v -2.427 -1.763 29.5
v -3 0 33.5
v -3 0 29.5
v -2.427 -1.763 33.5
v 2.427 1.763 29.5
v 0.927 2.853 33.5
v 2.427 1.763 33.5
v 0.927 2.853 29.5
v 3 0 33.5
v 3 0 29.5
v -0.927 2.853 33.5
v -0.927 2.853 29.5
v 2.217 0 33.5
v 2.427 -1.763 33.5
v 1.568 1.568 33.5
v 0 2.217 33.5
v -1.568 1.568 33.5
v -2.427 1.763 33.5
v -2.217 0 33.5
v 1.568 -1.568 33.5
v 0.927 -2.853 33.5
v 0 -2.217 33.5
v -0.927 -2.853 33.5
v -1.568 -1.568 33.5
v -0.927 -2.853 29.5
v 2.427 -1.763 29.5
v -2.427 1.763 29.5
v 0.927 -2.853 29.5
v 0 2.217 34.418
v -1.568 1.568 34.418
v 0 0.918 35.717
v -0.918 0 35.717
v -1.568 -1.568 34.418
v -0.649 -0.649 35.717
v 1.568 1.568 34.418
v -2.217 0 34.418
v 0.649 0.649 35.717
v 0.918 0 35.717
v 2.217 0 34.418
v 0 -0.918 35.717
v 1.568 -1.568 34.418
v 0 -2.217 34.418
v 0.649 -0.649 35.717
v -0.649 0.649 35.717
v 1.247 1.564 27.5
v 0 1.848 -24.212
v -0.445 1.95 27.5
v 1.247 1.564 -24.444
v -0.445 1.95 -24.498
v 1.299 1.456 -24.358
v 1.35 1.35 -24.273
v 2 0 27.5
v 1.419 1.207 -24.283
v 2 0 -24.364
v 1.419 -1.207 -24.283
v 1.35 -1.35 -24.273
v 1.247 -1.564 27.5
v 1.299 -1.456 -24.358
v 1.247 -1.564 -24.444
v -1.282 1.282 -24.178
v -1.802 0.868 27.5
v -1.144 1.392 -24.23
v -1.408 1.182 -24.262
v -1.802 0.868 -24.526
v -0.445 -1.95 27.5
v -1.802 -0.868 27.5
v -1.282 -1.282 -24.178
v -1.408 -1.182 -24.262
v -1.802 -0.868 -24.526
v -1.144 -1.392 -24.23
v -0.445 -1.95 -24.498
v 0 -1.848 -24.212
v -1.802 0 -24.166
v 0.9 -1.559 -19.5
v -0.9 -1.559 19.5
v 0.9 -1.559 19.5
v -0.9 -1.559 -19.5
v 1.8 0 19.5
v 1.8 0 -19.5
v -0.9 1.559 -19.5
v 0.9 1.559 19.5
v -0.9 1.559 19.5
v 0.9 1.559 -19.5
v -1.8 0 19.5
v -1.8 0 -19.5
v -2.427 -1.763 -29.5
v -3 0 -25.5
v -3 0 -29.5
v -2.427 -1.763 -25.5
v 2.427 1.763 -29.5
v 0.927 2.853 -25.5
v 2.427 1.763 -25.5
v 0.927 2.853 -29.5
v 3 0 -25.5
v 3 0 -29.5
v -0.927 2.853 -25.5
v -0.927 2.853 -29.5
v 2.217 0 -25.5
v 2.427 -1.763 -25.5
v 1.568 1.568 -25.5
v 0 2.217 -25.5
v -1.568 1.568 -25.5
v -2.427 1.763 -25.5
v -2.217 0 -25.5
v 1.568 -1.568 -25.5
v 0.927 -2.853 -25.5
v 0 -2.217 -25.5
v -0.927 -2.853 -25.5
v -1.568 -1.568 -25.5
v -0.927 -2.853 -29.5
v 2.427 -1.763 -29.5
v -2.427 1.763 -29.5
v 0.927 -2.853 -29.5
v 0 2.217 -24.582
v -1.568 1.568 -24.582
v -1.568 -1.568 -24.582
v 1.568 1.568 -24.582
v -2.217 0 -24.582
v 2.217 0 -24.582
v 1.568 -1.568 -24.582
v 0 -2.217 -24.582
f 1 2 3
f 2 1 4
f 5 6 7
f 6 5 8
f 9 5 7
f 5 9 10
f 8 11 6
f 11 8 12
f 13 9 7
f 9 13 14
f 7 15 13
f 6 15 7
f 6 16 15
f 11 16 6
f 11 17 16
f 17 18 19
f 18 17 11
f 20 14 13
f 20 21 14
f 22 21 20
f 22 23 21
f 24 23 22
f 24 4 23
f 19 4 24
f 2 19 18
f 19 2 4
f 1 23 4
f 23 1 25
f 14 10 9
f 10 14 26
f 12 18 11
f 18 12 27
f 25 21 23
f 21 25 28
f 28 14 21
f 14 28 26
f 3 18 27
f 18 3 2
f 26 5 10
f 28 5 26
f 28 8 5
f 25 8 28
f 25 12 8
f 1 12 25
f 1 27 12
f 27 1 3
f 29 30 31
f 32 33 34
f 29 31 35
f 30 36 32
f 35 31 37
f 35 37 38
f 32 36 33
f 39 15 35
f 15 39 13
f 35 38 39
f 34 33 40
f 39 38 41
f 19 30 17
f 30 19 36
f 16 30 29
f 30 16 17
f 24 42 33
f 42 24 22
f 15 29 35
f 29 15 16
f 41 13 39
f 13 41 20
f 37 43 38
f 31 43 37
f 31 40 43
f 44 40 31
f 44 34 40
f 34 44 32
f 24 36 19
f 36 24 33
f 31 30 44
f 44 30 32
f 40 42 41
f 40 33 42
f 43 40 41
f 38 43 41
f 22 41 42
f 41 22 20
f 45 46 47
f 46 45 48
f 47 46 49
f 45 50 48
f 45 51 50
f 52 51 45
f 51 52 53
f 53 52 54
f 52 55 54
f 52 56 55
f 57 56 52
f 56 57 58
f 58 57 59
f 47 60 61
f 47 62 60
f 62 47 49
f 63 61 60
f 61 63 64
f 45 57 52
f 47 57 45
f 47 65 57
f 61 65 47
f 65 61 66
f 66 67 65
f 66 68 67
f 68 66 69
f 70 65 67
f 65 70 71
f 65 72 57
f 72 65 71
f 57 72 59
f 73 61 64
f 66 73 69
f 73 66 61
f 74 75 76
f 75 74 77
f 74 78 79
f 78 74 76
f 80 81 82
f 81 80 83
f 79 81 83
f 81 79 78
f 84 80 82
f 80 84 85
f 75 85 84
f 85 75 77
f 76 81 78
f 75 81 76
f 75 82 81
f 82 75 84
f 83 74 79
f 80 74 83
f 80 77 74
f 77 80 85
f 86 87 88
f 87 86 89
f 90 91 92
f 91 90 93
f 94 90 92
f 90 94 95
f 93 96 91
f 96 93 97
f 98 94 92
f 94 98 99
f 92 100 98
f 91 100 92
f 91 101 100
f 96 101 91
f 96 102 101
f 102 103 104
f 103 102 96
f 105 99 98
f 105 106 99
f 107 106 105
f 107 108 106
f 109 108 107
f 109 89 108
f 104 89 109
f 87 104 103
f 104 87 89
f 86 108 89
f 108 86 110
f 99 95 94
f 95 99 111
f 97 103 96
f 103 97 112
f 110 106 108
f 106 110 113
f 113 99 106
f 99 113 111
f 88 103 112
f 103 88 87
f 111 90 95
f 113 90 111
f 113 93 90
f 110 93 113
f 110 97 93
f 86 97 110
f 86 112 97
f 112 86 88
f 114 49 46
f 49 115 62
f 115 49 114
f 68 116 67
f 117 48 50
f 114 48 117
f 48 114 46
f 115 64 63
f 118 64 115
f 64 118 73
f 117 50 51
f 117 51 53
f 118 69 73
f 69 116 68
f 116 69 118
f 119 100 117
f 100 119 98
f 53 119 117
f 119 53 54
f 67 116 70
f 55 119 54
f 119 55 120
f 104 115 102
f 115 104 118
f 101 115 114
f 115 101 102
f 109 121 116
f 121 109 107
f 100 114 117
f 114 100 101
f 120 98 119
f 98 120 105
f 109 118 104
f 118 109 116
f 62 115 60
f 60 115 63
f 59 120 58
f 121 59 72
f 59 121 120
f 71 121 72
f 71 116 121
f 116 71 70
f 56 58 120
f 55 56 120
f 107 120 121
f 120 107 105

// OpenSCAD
// Parameters for the rod
rod_length = 55; // Adjusted length of the rod to match the original model
rod_radius = 2;  // Radius of the rod
taper_radius = 1.8; // Reduced taper radius to make it less pronounced
taper_length = 8; // Adjusted length of the tapered section

// Parameters for the end caps
end_cap_radius = 3; // Radius of the end cap
end_cap_height = 4; // Reduced height of the end cap to flatten the dome

// Function to create a tapered rod
module tapered_rod() {
    difference() {
        // Main rod
        cylinder(h = rod_length, r1 = rod_radius, r2 = rod_radius, center = true);
        // Tapered section
        translate([0, 0, -rod_length / 2 + taper_length])
            cylinder(h = rod_length - 2 * taper_length, r1 = taper_radius, r2 = taper_radius, center = false);
    }
}

// Function to create an end cap
module end_cap() {
    union() {
        // Cylindrical base
        cylinder(h = end_cap_height, r = end_cap_radius, center = false);
        // Flattened dome
        translate([0, 0, end_cap_height])
            sphere(r = end_cap_radius * 0.8); // Flattened dome by reducing the sphere radius
    }
}

// Assemble the model
module flexible_coupling() {
    // Top end cap
    translate([0, 0, rod_length / 2 + end_cap_height / 2])
        end_cap();
    // Rod
    tapered_rod();
    // Bottom end cap
    translate([0, 0, -rod_length / 2 - end_cap_height / 2])
        end_cap();
}

// Render the flexible coupling
flexible_coupling();
